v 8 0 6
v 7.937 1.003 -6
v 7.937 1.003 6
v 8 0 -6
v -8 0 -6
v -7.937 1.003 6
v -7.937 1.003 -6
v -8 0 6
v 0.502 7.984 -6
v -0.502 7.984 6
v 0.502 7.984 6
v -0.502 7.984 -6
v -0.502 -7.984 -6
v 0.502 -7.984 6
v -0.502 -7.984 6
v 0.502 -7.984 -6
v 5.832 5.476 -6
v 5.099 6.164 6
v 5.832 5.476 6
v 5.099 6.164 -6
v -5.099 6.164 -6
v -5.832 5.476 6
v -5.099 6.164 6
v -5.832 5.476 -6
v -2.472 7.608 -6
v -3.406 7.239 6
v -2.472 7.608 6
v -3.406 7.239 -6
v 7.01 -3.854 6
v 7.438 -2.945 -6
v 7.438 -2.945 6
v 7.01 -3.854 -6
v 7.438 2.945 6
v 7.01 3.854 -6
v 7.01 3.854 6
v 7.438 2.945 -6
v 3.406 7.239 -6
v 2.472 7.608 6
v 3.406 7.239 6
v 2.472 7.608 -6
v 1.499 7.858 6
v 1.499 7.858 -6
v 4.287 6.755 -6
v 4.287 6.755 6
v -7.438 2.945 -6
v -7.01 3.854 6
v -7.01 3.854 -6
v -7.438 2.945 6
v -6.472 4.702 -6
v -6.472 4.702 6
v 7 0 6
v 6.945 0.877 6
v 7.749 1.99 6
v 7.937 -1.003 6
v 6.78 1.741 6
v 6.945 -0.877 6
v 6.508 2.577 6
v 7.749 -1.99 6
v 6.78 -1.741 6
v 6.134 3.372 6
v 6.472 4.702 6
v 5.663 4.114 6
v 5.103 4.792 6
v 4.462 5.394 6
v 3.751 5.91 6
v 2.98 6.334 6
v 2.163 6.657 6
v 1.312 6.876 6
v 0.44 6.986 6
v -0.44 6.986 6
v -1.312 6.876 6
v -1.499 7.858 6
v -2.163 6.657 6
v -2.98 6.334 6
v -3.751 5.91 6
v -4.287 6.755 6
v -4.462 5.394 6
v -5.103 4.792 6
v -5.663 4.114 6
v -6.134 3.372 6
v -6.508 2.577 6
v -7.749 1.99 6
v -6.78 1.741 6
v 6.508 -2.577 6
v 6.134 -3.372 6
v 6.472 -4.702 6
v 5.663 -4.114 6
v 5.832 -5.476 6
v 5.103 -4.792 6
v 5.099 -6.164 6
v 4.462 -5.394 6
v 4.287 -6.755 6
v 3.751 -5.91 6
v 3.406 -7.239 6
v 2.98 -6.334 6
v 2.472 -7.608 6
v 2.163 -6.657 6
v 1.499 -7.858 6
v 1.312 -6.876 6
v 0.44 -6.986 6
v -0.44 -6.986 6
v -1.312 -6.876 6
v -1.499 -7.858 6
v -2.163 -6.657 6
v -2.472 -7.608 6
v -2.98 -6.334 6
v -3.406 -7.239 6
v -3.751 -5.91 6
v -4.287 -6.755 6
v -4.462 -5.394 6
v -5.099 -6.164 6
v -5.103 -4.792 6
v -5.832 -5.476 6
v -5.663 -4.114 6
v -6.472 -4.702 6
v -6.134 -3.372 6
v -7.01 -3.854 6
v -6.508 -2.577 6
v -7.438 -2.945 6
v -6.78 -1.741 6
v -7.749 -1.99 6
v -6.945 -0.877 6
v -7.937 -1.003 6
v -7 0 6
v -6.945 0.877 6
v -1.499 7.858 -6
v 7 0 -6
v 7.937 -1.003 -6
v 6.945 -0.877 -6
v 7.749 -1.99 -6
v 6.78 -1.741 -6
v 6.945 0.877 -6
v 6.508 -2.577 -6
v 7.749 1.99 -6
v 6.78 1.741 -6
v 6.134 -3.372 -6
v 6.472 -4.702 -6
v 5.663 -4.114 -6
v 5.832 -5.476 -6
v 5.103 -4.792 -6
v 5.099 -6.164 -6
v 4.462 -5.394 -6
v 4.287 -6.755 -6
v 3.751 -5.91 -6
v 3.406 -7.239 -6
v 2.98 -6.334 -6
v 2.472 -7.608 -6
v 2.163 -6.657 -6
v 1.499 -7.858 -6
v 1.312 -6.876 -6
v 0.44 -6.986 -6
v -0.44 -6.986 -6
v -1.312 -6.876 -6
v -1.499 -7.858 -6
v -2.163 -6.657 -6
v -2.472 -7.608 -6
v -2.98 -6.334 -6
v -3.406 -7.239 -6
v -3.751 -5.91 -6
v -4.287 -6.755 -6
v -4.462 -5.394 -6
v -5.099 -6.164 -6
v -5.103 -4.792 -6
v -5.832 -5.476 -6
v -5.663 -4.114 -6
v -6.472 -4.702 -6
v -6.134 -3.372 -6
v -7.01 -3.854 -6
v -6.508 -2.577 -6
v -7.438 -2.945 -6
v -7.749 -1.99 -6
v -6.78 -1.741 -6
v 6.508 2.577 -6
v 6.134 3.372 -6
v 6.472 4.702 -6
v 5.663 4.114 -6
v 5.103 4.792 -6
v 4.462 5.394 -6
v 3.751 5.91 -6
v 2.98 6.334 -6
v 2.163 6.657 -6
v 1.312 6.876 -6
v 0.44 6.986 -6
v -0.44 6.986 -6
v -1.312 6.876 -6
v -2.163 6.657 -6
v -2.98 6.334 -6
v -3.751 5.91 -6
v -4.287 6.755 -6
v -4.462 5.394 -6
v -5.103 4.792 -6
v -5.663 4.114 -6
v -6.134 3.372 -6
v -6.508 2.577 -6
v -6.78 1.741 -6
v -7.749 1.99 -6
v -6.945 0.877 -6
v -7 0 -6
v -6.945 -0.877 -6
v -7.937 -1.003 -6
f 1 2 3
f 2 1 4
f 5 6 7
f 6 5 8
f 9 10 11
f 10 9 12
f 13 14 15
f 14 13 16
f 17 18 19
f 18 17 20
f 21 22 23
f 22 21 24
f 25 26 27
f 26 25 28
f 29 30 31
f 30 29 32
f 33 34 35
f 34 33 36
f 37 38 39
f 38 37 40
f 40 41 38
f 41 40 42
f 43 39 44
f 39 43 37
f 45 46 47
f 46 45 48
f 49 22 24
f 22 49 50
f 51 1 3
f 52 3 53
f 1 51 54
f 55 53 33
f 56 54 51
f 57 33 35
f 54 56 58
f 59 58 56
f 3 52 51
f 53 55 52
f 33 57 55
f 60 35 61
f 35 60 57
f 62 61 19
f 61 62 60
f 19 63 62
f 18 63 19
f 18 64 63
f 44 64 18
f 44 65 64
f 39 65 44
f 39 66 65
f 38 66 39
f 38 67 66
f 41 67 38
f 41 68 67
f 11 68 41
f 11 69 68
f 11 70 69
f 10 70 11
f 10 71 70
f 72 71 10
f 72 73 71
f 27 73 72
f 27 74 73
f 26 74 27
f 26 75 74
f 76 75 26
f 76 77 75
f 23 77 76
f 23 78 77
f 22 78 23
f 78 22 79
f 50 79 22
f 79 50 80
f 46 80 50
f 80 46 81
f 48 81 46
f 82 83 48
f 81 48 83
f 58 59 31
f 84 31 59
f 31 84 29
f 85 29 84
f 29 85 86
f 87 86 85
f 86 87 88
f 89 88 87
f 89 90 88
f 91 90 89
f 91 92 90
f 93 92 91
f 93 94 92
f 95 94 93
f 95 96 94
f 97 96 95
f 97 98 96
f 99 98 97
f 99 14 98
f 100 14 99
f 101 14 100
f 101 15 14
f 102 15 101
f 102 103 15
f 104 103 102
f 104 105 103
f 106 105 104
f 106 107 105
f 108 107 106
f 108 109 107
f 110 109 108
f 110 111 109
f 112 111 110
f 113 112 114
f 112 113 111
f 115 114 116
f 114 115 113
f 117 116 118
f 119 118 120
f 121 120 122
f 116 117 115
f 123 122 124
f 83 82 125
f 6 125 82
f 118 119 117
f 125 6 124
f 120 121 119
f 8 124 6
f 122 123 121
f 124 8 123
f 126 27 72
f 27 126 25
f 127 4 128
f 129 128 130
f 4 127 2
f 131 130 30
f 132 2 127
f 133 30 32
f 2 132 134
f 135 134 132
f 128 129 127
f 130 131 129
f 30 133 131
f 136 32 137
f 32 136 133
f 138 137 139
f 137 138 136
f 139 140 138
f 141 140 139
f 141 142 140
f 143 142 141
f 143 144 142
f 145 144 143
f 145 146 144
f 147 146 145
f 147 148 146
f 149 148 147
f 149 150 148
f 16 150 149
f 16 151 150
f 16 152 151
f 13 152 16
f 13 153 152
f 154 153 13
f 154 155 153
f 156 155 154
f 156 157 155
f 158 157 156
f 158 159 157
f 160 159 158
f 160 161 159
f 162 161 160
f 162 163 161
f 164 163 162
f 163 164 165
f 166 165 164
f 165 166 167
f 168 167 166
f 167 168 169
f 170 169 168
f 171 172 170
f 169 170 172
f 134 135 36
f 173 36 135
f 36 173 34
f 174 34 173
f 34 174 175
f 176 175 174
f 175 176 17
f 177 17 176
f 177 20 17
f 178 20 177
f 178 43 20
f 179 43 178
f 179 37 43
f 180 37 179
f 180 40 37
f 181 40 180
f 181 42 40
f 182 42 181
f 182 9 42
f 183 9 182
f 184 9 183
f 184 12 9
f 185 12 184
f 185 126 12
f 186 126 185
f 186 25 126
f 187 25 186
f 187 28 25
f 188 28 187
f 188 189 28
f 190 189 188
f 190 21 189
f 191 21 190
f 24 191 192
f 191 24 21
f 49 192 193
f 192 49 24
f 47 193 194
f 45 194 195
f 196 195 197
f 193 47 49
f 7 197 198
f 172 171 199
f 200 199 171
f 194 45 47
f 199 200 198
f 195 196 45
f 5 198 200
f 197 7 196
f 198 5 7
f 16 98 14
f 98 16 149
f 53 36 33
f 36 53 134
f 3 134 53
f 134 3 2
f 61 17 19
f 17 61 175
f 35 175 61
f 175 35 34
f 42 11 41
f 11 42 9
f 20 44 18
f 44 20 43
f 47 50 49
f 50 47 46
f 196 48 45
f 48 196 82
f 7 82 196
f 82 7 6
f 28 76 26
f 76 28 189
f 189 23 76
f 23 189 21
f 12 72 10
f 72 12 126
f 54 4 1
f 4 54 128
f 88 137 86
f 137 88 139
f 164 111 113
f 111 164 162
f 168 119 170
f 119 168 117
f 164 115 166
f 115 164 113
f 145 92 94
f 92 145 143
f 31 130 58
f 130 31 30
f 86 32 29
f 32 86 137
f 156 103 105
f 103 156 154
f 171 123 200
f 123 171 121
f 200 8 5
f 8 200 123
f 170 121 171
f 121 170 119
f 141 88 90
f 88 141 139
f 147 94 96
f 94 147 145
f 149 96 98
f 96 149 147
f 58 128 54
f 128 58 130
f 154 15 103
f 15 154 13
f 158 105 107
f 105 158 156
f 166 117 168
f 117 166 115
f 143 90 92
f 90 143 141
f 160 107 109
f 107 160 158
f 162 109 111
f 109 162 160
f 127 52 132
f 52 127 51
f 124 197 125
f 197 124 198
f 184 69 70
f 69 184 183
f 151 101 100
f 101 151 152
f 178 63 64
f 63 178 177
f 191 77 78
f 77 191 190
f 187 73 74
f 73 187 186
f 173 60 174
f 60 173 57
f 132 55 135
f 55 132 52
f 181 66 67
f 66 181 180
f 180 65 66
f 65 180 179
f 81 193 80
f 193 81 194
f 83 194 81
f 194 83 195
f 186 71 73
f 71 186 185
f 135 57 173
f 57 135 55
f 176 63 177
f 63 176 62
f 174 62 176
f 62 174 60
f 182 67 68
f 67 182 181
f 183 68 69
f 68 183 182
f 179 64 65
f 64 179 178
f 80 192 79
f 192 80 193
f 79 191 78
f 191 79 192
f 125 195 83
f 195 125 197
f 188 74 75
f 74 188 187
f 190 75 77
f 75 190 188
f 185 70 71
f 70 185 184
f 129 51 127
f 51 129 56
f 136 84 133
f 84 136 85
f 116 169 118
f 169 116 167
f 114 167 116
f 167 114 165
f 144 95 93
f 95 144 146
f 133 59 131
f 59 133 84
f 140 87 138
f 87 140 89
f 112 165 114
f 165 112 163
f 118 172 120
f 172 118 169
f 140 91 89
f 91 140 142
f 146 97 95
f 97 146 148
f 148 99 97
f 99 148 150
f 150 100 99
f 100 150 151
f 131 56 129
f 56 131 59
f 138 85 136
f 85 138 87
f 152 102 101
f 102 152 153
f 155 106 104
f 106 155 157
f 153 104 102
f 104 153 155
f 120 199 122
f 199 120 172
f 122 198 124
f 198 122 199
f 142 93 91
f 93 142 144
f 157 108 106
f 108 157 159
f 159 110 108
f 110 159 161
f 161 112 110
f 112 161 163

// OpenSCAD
$fn = 50;


difference() {
	union() {
		translate(v = [0, 0, -6.0000000000]) {
			cylinder(h = 12, r = 8.0000000000);
		}
	}
	union() {
		translate(v = [0, 0, -100.0000000000]) {
			cylinder(h = 200, r = 7);
		}
	}
}
